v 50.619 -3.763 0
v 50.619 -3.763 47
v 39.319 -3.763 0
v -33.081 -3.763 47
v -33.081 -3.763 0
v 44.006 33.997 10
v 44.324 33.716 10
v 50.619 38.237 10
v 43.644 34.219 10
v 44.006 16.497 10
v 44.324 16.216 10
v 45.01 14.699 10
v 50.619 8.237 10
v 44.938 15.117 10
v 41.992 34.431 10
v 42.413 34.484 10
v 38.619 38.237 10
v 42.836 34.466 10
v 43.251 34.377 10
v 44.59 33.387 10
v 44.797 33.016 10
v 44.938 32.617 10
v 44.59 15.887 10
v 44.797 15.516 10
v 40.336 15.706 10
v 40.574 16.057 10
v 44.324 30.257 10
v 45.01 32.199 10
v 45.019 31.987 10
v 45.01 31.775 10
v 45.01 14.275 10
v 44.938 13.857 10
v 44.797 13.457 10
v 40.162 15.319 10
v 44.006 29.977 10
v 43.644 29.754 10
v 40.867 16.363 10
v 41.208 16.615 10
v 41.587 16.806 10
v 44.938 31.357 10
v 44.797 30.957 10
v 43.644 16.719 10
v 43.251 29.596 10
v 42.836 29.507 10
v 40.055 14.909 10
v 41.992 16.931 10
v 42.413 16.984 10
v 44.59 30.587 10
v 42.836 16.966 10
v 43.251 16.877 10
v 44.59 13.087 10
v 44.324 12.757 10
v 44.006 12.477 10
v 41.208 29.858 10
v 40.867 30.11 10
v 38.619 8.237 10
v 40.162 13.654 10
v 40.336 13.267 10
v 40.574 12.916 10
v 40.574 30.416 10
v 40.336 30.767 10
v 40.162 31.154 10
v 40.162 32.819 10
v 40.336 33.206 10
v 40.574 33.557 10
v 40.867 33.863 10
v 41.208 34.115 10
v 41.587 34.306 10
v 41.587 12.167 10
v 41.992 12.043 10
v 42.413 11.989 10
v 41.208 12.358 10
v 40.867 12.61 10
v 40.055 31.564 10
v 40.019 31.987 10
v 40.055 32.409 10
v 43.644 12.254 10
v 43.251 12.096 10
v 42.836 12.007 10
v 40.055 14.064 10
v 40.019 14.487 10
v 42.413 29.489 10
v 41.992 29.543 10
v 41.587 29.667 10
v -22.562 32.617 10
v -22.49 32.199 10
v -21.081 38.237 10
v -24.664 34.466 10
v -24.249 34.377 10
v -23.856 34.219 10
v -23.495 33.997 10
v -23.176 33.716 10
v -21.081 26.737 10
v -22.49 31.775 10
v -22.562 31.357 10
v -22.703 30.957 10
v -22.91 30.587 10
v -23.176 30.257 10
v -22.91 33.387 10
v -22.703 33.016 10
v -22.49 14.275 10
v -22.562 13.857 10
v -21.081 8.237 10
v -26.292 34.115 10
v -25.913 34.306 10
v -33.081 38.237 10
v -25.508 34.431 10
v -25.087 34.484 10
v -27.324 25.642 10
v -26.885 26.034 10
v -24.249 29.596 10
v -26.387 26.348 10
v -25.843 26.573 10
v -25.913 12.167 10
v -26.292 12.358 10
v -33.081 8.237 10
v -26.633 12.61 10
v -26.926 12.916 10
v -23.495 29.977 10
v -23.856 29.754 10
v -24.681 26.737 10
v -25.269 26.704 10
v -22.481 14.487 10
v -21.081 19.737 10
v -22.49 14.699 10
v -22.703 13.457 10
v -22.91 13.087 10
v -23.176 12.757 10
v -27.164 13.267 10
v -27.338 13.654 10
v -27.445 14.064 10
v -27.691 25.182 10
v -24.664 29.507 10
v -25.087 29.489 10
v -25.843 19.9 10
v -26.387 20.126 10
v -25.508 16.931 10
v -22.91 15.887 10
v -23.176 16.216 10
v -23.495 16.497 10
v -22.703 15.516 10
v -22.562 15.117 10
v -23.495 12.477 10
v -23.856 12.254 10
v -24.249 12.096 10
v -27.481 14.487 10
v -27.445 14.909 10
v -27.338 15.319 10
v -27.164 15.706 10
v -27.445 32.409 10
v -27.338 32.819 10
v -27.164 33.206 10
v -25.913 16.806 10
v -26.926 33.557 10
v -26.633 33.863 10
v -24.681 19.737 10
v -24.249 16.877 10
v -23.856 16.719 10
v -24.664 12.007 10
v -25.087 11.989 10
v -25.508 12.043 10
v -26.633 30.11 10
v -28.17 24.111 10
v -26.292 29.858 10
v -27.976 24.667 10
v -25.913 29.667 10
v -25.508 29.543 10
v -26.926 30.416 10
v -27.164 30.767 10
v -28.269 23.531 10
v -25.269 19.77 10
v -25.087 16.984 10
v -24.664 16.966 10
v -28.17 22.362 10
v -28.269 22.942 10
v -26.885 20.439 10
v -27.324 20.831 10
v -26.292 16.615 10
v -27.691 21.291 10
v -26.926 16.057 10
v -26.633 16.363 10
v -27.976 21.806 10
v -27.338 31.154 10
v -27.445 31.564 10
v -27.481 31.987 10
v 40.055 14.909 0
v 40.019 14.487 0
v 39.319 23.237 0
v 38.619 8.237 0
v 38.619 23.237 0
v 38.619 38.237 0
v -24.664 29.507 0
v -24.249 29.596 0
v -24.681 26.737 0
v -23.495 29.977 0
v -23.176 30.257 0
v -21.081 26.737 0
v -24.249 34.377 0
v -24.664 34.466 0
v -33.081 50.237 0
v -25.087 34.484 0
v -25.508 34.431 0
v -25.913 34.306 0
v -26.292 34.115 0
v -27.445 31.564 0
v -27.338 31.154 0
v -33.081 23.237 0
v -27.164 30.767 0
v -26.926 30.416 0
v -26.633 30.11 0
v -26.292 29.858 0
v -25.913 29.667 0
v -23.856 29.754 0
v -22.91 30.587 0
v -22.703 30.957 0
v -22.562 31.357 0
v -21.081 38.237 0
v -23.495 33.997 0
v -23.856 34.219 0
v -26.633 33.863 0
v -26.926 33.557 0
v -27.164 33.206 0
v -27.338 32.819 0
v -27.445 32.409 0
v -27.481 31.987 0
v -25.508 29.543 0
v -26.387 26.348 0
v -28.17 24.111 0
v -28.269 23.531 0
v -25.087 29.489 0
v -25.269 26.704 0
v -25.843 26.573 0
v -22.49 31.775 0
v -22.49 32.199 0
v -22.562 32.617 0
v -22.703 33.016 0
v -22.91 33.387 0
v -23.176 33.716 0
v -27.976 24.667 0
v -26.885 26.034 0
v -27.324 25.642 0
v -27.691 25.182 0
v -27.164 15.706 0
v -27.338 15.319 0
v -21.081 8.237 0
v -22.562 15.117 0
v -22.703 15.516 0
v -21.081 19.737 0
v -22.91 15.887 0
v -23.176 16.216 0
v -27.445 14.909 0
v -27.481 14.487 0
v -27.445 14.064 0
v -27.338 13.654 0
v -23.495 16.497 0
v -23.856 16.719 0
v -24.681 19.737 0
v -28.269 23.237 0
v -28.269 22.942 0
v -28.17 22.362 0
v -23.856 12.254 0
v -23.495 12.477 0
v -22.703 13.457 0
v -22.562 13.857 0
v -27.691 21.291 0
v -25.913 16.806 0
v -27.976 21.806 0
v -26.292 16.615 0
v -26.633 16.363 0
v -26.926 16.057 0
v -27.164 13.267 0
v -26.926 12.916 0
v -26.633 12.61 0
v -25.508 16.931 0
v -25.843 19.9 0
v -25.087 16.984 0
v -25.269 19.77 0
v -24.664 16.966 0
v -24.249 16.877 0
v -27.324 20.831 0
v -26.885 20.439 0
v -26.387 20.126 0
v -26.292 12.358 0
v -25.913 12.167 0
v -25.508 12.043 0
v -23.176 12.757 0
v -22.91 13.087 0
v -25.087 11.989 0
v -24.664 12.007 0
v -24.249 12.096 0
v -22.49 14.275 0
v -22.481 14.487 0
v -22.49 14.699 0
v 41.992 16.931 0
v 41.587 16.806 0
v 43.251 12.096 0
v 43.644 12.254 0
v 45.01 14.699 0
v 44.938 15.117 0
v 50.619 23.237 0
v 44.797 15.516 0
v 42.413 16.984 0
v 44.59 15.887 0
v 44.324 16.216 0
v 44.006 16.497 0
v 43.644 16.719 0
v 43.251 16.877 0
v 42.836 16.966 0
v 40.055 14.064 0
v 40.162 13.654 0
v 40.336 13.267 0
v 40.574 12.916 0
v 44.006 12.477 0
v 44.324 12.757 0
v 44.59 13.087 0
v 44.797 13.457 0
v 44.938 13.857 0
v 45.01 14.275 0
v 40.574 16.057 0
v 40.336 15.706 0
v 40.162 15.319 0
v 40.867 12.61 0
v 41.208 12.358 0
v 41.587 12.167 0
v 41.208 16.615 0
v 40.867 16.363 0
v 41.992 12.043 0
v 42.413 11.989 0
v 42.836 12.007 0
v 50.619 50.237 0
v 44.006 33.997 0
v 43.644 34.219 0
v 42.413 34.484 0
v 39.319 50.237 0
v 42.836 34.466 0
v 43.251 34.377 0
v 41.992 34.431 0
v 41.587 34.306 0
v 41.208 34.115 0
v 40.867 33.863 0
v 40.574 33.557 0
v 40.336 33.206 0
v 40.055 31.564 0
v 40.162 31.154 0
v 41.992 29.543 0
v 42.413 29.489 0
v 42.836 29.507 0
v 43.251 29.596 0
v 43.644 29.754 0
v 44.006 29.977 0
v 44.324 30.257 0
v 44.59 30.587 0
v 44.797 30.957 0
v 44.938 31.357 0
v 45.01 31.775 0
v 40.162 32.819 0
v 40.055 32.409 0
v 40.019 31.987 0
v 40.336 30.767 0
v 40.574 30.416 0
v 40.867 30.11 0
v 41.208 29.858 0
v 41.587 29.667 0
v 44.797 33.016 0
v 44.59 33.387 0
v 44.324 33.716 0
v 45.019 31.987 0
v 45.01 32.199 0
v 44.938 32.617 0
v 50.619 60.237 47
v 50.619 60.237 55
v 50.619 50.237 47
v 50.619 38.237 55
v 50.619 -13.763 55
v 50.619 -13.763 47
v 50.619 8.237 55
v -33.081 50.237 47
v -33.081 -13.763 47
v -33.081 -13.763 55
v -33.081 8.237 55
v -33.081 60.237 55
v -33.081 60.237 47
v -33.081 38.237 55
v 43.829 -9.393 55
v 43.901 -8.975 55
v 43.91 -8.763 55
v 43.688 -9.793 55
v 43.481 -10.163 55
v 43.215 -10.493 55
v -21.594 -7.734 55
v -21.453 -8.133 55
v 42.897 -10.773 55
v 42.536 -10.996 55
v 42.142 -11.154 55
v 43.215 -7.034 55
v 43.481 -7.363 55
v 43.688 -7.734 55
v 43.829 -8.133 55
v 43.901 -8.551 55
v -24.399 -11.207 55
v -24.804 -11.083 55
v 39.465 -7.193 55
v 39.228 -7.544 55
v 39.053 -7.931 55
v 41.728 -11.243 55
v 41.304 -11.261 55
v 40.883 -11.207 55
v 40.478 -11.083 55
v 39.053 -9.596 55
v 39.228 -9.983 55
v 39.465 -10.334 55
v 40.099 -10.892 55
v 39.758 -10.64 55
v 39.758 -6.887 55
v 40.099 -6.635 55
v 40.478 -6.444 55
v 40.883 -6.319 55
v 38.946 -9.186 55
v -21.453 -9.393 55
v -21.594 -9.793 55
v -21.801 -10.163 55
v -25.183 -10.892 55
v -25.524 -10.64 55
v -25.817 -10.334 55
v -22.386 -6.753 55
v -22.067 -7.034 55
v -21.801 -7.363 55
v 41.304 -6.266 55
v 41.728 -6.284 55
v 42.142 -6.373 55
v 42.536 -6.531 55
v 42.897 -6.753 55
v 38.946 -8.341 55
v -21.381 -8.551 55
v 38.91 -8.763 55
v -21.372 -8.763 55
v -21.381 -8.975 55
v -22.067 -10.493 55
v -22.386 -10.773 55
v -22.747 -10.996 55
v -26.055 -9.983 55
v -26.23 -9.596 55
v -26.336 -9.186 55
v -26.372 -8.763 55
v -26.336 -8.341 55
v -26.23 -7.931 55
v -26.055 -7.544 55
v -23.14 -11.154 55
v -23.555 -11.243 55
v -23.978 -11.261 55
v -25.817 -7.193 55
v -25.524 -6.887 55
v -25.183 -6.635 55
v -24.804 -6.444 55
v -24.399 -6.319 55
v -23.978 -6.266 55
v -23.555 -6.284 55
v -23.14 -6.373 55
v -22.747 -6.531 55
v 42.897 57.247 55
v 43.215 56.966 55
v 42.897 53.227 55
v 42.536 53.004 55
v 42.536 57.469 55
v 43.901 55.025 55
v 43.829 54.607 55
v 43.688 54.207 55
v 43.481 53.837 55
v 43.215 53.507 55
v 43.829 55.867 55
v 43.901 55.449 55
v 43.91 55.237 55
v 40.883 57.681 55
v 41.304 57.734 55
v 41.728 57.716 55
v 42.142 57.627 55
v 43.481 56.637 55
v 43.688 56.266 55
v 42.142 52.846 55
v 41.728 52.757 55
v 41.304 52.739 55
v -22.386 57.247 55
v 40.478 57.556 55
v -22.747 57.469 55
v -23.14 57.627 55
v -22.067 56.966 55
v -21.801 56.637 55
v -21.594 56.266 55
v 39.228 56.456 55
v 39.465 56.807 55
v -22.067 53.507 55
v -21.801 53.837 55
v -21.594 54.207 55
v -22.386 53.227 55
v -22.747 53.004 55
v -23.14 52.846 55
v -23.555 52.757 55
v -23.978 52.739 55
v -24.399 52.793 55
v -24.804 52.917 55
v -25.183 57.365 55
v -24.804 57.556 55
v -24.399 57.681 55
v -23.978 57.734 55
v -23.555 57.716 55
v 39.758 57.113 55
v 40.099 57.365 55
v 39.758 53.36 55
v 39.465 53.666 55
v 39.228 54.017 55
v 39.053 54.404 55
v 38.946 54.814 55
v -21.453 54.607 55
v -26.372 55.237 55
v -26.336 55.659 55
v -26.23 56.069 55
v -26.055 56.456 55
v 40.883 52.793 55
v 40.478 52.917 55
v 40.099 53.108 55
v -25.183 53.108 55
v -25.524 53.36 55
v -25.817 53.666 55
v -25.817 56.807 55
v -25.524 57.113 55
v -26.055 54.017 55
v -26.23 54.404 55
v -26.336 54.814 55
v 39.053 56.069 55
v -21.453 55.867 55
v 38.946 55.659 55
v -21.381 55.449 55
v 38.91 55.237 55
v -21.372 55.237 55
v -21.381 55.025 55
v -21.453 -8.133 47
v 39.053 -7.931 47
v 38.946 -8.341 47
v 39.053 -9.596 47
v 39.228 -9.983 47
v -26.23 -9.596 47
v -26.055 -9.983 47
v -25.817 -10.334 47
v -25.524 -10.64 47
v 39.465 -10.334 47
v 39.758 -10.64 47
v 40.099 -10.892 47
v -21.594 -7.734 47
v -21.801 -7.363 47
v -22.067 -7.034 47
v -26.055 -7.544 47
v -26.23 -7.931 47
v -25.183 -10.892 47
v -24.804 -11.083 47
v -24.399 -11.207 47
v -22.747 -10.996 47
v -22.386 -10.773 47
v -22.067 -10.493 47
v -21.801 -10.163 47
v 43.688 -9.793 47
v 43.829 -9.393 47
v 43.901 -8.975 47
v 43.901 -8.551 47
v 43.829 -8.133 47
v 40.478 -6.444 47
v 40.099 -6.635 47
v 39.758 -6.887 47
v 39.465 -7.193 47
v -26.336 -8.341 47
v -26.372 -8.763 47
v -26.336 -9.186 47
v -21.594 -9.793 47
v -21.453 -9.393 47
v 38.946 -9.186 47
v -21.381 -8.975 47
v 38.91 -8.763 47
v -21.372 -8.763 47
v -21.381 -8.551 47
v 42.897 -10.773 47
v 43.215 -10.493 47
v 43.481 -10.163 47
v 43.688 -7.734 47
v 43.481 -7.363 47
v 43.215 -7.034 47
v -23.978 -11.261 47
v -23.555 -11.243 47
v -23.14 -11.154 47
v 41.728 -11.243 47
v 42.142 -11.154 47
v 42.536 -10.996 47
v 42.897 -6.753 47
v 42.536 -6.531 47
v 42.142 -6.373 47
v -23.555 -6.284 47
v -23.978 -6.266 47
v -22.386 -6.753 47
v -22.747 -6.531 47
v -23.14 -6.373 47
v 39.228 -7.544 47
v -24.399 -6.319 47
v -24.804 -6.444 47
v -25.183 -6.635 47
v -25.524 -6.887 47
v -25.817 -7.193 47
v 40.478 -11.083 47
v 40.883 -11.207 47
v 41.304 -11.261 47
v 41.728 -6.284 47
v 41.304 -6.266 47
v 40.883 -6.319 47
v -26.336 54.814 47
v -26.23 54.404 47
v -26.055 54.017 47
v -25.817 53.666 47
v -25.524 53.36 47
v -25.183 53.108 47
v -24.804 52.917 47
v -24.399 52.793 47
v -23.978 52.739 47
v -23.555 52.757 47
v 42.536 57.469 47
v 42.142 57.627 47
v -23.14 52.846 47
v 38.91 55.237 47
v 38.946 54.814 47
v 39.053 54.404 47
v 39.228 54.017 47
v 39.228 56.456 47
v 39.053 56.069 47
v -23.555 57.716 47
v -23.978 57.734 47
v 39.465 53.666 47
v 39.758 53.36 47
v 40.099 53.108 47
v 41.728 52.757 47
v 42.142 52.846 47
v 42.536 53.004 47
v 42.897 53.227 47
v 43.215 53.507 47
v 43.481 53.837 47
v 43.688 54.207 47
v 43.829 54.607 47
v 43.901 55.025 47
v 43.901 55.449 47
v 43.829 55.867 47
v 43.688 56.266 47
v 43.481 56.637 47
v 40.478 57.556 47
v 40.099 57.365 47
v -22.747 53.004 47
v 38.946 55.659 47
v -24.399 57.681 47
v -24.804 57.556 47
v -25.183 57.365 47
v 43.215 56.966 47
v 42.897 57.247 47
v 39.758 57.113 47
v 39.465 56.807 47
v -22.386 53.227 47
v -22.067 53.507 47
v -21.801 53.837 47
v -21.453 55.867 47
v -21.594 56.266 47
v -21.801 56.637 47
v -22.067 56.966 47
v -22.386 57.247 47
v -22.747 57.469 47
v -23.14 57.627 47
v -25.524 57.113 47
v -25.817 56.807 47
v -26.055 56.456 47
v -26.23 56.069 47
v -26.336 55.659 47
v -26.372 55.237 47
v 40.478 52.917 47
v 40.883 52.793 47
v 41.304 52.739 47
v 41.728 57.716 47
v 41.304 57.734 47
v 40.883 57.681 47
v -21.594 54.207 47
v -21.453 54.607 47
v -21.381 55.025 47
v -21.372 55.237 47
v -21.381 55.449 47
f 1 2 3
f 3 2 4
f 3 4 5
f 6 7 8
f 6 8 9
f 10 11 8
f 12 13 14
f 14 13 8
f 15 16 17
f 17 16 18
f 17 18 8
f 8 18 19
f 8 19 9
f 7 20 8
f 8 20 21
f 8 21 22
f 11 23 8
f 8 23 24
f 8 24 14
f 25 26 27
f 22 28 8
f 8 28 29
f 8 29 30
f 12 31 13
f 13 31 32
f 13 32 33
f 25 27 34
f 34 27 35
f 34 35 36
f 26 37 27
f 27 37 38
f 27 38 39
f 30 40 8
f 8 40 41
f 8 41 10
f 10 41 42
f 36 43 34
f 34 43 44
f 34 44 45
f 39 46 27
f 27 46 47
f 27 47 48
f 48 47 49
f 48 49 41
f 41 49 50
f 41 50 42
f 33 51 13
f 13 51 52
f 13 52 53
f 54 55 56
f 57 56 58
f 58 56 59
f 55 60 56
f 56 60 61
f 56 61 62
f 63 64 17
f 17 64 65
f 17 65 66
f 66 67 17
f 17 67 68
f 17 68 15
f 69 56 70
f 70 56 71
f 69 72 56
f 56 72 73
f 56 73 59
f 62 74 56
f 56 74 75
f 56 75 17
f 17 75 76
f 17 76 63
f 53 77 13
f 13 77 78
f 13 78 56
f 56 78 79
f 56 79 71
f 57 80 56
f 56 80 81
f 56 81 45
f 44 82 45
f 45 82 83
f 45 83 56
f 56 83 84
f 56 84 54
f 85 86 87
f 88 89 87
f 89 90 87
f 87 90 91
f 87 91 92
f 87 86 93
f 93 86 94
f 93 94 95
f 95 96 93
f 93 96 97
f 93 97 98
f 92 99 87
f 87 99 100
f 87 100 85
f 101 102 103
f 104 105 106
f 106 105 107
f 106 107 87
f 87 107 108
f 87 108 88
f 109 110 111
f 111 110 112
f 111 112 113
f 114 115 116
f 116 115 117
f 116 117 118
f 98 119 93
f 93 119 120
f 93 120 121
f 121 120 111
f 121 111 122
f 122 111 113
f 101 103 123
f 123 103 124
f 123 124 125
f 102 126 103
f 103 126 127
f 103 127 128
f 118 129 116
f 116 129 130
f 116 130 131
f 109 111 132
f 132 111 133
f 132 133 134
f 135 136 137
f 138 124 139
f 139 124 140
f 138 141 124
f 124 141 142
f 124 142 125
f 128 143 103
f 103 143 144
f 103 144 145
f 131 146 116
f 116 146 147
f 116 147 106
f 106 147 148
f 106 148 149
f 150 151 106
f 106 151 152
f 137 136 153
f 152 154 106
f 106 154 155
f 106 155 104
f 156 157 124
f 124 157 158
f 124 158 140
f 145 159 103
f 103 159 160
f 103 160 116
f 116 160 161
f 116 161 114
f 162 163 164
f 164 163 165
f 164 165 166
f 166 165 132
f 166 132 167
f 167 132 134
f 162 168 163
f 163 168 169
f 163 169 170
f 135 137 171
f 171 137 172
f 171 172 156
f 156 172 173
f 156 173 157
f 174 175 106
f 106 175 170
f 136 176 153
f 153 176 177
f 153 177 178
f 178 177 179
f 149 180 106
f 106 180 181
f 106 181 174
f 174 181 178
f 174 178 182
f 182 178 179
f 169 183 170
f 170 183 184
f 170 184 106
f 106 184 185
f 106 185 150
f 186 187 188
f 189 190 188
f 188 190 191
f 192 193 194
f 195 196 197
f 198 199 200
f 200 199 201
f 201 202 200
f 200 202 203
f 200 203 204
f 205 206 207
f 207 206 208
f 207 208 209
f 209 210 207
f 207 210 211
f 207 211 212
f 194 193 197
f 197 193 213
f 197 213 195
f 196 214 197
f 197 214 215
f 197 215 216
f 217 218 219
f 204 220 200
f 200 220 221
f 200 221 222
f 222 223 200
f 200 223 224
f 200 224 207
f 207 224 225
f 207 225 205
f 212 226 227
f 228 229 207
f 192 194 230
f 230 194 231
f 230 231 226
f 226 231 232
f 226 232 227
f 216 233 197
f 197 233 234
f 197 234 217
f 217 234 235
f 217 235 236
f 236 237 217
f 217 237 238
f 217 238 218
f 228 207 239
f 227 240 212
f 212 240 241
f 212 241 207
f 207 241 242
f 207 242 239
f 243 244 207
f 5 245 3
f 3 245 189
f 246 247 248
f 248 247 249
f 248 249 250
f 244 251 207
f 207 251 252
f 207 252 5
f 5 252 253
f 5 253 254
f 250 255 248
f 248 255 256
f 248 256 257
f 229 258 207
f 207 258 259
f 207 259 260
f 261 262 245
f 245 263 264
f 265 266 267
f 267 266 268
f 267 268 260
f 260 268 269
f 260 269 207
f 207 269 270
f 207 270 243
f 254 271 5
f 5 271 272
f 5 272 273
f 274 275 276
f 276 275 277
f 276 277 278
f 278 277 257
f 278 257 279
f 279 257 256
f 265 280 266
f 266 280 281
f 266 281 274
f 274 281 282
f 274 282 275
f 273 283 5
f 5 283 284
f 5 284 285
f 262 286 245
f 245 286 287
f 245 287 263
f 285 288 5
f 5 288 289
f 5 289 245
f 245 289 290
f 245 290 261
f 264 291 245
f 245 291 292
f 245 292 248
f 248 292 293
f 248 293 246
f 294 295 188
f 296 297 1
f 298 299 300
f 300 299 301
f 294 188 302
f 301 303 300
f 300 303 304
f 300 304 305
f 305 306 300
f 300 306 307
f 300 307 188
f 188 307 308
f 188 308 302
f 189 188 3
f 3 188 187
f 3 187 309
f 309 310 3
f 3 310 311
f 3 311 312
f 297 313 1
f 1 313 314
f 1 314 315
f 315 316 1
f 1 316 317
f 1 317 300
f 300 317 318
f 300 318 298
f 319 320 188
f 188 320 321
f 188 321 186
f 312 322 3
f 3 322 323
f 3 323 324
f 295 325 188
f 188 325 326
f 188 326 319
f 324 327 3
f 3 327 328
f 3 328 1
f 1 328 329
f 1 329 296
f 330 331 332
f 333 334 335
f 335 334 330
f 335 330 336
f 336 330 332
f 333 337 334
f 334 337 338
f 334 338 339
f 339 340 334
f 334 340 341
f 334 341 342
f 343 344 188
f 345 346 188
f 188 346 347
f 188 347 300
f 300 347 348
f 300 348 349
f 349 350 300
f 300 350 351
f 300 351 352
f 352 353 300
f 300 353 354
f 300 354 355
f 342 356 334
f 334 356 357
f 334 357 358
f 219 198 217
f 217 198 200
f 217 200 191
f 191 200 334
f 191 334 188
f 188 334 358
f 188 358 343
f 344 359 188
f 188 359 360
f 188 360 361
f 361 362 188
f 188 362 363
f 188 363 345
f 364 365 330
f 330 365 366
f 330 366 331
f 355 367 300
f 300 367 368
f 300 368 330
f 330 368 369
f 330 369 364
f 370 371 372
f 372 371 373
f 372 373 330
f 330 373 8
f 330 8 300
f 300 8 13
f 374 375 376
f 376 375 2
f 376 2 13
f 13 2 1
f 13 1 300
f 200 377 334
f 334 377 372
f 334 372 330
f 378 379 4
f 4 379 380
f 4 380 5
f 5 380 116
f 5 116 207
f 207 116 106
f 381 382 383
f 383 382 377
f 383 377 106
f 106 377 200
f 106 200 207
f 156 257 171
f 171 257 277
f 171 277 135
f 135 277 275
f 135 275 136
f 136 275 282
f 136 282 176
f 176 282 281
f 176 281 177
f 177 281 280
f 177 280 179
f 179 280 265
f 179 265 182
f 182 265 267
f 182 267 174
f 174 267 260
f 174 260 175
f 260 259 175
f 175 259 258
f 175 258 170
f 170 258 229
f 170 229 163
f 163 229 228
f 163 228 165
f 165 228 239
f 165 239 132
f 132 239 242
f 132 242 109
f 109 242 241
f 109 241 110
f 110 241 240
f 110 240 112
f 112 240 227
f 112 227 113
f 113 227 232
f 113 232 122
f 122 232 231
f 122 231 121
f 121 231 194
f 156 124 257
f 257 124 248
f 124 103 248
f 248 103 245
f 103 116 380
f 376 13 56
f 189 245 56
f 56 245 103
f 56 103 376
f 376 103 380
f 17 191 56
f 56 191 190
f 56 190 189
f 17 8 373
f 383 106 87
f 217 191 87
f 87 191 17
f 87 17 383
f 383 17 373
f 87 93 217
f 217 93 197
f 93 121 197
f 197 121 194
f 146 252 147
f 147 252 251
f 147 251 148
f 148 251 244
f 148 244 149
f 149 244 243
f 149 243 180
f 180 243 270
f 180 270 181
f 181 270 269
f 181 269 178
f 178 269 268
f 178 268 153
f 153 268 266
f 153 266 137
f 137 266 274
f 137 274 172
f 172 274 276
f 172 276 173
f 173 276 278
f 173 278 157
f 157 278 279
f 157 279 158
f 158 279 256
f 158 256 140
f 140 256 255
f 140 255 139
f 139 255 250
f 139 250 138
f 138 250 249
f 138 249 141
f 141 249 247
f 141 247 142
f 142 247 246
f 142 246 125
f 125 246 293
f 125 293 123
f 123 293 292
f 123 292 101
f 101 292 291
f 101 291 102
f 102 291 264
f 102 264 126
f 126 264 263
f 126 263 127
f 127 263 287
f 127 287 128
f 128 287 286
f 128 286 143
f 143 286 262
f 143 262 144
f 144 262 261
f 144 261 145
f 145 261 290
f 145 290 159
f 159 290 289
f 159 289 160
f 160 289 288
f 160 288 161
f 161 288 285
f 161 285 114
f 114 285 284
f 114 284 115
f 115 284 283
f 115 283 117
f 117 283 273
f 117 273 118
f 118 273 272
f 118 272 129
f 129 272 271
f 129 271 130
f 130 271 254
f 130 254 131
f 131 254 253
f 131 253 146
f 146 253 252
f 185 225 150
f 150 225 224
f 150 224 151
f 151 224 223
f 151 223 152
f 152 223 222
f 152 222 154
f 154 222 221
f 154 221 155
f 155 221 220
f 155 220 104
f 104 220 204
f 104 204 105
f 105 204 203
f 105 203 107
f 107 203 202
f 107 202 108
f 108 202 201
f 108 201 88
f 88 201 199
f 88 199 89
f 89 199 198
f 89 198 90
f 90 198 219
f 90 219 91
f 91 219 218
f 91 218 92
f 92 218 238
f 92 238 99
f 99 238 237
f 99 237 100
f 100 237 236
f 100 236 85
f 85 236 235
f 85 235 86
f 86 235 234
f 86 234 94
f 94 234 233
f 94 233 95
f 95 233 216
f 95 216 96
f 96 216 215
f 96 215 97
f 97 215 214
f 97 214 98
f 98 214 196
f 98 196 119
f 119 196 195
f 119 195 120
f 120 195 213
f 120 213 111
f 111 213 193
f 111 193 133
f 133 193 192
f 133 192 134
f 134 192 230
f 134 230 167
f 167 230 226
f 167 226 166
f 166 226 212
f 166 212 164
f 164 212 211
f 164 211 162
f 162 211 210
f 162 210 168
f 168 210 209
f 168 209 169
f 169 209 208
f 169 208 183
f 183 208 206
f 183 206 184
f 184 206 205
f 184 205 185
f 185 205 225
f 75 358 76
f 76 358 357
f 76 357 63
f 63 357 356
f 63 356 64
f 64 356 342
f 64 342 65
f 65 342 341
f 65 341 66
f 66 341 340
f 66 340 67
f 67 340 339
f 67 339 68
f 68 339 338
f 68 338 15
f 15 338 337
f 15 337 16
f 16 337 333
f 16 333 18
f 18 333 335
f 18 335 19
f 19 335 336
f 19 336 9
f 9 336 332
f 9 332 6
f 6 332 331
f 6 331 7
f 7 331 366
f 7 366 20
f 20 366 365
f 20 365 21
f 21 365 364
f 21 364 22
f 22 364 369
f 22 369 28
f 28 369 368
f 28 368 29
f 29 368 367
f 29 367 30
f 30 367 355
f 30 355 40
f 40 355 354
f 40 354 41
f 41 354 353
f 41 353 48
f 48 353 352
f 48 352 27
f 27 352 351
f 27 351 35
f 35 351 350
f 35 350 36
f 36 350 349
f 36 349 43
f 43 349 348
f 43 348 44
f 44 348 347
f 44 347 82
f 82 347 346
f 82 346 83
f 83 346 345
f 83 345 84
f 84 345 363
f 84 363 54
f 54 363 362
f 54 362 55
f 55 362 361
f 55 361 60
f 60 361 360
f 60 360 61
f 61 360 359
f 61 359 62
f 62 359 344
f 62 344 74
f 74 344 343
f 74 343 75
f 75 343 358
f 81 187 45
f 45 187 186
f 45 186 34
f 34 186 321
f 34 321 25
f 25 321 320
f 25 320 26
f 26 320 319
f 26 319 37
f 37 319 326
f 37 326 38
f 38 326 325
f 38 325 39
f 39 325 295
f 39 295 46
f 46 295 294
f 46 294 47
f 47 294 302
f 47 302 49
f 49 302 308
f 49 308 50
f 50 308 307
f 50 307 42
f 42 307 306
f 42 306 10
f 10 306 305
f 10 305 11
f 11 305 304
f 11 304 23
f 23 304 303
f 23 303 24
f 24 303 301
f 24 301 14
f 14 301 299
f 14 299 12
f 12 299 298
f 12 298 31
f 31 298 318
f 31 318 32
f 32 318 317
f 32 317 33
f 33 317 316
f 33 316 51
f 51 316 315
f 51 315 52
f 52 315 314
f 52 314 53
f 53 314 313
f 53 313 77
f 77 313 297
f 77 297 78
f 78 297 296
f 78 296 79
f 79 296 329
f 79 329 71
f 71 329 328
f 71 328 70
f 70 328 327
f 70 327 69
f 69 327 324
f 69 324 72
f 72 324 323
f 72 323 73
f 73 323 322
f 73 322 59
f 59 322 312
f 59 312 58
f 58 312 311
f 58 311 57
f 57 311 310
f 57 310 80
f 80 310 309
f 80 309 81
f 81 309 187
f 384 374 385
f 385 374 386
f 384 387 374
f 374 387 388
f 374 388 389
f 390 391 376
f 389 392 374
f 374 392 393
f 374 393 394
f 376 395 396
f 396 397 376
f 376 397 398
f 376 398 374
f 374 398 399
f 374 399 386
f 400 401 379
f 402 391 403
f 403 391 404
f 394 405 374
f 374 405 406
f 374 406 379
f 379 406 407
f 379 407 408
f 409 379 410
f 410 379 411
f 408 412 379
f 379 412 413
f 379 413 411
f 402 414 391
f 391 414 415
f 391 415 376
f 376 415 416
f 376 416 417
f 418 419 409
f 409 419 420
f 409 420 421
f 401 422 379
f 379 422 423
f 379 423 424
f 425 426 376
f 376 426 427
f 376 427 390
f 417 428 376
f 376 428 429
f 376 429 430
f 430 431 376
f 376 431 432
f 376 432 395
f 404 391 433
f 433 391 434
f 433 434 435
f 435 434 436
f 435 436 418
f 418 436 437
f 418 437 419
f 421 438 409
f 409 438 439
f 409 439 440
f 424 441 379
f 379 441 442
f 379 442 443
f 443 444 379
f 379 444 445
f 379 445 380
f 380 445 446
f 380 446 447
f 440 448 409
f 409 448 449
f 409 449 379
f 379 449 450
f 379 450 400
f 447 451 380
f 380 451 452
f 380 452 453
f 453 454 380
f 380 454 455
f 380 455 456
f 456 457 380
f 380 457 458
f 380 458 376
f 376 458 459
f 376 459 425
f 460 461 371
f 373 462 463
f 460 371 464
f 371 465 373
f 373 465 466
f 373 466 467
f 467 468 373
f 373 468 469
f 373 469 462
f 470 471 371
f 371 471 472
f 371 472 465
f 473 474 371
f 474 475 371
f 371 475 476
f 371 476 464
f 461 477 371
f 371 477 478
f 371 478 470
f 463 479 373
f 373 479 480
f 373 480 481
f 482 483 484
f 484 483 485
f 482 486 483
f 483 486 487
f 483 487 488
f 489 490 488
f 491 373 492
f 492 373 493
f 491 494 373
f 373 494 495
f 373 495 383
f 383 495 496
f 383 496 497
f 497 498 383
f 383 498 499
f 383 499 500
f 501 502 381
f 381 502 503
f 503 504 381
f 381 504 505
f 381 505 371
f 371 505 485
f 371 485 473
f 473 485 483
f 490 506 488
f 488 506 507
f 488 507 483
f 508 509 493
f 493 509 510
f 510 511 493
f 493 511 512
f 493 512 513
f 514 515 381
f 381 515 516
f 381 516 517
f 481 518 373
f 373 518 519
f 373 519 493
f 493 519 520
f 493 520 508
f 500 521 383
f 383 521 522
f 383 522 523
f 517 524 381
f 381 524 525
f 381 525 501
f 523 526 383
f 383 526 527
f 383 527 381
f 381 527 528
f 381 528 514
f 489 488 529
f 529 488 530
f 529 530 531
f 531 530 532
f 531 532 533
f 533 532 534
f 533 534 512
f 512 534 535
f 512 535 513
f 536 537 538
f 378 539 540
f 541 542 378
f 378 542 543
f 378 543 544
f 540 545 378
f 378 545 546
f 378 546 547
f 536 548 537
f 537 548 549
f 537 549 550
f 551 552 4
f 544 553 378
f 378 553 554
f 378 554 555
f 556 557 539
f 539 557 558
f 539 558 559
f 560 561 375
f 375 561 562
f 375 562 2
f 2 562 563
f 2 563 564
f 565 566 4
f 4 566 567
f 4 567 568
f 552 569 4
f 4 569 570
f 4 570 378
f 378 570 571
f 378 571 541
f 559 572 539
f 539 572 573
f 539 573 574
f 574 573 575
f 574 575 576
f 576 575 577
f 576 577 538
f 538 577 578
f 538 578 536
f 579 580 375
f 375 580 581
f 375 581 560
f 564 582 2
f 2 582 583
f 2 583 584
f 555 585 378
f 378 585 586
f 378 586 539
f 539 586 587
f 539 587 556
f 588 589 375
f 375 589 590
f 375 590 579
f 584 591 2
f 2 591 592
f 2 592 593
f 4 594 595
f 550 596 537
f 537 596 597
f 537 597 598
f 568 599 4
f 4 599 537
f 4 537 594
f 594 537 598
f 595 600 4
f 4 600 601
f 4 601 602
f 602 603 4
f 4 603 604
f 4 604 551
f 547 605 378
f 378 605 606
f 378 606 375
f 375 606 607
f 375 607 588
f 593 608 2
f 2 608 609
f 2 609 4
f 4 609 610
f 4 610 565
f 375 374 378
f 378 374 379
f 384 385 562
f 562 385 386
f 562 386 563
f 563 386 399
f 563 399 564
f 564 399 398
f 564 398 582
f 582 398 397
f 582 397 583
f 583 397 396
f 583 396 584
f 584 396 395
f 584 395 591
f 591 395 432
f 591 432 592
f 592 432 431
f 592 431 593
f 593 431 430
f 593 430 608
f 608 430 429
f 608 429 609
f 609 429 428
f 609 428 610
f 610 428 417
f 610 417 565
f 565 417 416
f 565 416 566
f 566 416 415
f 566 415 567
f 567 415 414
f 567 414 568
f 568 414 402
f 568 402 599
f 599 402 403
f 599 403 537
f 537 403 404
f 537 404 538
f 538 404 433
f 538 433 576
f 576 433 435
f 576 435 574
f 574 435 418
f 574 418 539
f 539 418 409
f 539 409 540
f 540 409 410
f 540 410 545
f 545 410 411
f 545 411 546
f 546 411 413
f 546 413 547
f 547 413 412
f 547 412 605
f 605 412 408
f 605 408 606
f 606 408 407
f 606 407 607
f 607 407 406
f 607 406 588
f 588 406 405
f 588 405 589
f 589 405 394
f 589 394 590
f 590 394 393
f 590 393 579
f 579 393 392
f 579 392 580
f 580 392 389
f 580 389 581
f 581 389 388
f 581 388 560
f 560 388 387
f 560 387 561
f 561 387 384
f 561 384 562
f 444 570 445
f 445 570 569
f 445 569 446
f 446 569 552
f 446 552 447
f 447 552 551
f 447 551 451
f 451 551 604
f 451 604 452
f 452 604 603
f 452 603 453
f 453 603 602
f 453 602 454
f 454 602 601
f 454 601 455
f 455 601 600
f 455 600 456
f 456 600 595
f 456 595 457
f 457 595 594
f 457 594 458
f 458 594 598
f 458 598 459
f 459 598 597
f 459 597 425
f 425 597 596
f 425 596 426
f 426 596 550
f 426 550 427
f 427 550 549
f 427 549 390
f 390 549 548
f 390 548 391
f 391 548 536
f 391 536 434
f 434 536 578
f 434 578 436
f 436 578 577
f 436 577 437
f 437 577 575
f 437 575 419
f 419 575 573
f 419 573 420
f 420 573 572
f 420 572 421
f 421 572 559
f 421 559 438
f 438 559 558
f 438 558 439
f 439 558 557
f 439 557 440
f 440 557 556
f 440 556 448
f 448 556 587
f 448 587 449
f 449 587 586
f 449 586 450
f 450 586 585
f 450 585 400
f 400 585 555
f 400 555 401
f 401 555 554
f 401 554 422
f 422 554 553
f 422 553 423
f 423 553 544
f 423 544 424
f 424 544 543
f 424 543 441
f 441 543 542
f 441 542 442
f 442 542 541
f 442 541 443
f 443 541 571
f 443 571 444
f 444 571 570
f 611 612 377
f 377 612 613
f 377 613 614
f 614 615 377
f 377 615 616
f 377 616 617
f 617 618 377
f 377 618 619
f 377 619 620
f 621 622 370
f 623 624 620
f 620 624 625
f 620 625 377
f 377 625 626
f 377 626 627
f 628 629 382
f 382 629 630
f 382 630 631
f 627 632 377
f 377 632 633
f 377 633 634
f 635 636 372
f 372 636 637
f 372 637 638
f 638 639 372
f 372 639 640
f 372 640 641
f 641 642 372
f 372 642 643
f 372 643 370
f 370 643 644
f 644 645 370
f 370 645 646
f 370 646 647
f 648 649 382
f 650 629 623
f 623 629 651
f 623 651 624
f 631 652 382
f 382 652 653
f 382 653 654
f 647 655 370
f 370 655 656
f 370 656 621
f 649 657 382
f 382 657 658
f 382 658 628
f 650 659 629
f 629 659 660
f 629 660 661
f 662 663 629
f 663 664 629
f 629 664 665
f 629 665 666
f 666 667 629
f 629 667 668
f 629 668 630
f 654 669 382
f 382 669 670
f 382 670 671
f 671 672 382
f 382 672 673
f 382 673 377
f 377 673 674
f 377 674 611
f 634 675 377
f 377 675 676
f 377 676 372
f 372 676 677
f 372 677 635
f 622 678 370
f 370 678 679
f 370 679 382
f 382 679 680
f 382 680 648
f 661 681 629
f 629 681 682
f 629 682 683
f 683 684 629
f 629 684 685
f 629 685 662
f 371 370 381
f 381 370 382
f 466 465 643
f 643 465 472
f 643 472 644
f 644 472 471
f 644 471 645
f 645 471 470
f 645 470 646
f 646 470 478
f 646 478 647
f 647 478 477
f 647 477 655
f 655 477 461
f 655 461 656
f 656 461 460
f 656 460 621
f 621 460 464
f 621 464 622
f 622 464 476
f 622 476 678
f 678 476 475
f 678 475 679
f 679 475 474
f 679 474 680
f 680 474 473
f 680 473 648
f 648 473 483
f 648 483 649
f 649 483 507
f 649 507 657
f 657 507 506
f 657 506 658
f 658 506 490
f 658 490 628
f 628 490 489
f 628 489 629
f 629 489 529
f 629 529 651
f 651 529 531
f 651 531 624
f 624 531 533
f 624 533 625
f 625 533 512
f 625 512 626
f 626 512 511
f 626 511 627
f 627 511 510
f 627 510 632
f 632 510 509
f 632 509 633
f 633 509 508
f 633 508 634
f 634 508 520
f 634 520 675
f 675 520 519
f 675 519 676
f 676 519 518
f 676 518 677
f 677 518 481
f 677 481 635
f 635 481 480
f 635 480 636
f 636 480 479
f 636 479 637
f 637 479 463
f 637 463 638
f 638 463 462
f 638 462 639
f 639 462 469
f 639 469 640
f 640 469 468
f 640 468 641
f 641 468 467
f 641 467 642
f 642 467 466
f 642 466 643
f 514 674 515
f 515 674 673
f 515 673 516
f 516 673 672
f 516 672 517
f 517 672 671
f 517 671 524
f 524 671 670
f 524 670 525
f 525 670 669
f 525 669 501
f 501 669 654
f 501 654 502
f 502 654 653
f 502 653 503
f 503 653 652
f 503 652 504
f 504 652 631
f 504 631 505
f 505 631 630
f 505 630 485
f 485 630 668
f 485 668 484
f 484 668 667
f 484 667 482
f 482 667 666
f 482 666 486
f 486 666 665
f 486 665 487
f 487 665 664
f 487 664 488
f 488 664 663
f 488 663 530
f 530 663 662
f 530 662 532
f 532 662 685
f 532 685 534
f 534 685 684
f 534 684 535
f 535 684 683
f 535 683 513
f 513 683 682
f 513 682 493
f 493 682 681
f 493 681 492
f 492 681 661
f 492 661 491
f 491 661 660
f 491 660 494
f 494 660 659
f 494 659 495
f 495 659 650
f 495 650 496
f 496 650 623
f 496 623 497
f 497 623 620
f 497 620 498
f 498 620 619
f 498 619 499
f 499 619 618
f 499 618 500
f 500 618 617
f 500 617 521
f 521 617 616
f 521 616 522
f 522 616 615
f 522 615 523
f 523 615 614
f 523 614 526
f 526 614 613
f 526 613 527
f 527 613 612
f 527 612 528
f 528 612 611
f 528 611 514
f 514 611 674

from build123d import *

# Parameters (mm, degrees)
CROQUIS1_R              = 2.5
SALIENTE_EXTRUIR1_DEPTH = 10
CROQUIS2_W              = 83.7
CROQUIS2_H              = 12
SALIENTE_EXTRUIR2_DEPTH = 45
CROQUIS3_W              = 83.7
CROQUIS3_H              = 8
SALIENTE_EXTRUIR3_DEPTH = 10
CORTAR_EXTRUIR1_REACH   = 87.411
CROQUIS4_R              = 2.5


with BuildPart() as part:
    # Croquis1 → Saliente-Extruir1 (new body)
    with BuildSketch(Plane.XY):
        Polygon((-33.081084665, 4.522845957), (-33.081084665, -3.763368441), (50.618915335, -3.763368441), (50.618915335, 4.522845957), (50.618915335, 50.236631559), (-33.081084665, 50.236631559), (-33.081084665, 7.26530538), align=None)
        with Locations((-24.981084665, 14.486631559)):
            Circle(CROQUIS1_R, mode=Mode.SUBTRACT)
        with Locations(Location((-24.981084665, 31.986631559, 0), (0, 0, 180))):
            Circle(CROQUIS1_R, mode=Mode.SUBTRACT)
        with Locations((42.518915335, 31.986631559)):
            Circle(CROQUIS1_R, mode=Mode.SUBTRACT)
        with Locations(Location((42.518915335, 14.486631559, 0), (0, 0, 180))):
            Circle(CROQUIS1_R, mode=Mode.SUBTRACT)
        with BuildLine():
            Line((38.618915335, 38.236631559), (-21.081084665, 38.236631559))
            Line((-21.081084665, 38.236631559), (-21.081084665, 26.736631559))
            Line((-21.081084665, 26.736631559), (-24.681084665, 26.736631559))
            ThreePointArc((-24.681084665, 26.736631559), (-28.281084665, 23.236631559), (-24.681084665, 19.736631559))
            Line((-24.681084665, 19.736631559), (-21.081084665, 19.736631559))
            Line((-21.081084665, 19.736631559), (-21.081084665, 8.236631559))
            Line((-21.081084665, 8.236631559), (15.848469228, 8.236631559))
            Line((15.848469228, 8.236631559), (38.618915335, 8.236631559))
            Line((38.618915335, 8.236631559), (38.618915335, 38.236631559))
        make_face(mode=Mode.SUBTRACT)
    extrude(amount=SALIENTE_EXTRUIR1_DEPTH)

    # Croquis2 → Saliente-Extruir2 (add)
    with BuildSketch(Plane.XY.offset(10)):
        with Locations((8.768915335, 2.236631559)):
            Rectangle(CROQUIS2_W, CROQUIS2_H)
        with Locations((8.768915335, 44.236631559)):
            Rectangle(CROQUIS2_W, CROQUIS2_H)
    extrude(amount=SALIENTE_EXTRUIR2_DEPTH)

    # Croquis3 → Saliente-Extruir3 (add)
    with BuildSketch(Plane.XZ.offset(3.763368441)):
        with Locations((8.768915335, 51)):
            Rectangle(CROQUIS3_W, CROQUIS3_H)
    saliente_extruir3 = extrude(amount=SALIENTE_EXTRUIR3_DEPTH)

    # Croquis4 → Cortar-Extruir1 (cut, up to next)
    with BuildSketch(Plane(origin=(0, 0, 47), x_dir=(-1, 0, 0), z_dir=(0, 0, -1)), mode=Mode.PRIVATE) as cortar_extruir1_sk1:
        with Locations((-41.410138607, -8.763368441)):
            Circle(CROQUIS4_R)
    cortar_extruir1_tool1 = extrude(cortar_extruir1_sk1.sketch, amount=-CORTAR_EXTRUIR1_REACH, mode=Mode.PRIVATE) & part.part
    # Croquis4 → Cortar-Extruir1 (cut, up to next)
    with BuildSketch(Plane(origin=(0, 0, 47), x_dir=(-1, 0, 0), z_dir=(0, 0, -1)), mode=Mode.PRIVATE) as cortar_extruir1_sk2:
        with Locations(Location((23.872307937, -8.763368441, 0), (0, 0, 180))):
            Circle(CROQUIS4_R)
    cortar_extruir1_tool2 = extrude(cortar_extruir1_sk2.sketch, amount=-CORTAR_EXTRUIR1_REACH, mode=Mode.PRIVATE) & part.part
    cortar_extruir1_1 = cortar_extruir1_tool1.solids().sort_by_distance((41.410139, -8.763368, 47))[0]
    add(cortar_extruir1_1, mode=Mode.SUBTRACT)
    cortar_extruir1_2 = cortar_extruir1_tool2.solids().sort_by_distance((-23.872308, -8.763368, 47))[0]
    add(cortar_extruir1_2, mode=Mode.SUBTRACT)
    cortar_extruir1 = cortar_extruir1_1 + cortar_extruir1_2  # Cortar-Extruir1 as one shape, for the pattern or mirror that repeats it

    # Simetría1: Saliente-Extruir3, Cortar-Extruir1 across plane
    add(saliente_extruir3.mirror(Plane.ZX.offset(23.236631559)))
    add(cortar_extruir1.mirror(Plane.ZX.offset(23.236631559)), mode=Mode.SUBTRACT)


solid = part.part
